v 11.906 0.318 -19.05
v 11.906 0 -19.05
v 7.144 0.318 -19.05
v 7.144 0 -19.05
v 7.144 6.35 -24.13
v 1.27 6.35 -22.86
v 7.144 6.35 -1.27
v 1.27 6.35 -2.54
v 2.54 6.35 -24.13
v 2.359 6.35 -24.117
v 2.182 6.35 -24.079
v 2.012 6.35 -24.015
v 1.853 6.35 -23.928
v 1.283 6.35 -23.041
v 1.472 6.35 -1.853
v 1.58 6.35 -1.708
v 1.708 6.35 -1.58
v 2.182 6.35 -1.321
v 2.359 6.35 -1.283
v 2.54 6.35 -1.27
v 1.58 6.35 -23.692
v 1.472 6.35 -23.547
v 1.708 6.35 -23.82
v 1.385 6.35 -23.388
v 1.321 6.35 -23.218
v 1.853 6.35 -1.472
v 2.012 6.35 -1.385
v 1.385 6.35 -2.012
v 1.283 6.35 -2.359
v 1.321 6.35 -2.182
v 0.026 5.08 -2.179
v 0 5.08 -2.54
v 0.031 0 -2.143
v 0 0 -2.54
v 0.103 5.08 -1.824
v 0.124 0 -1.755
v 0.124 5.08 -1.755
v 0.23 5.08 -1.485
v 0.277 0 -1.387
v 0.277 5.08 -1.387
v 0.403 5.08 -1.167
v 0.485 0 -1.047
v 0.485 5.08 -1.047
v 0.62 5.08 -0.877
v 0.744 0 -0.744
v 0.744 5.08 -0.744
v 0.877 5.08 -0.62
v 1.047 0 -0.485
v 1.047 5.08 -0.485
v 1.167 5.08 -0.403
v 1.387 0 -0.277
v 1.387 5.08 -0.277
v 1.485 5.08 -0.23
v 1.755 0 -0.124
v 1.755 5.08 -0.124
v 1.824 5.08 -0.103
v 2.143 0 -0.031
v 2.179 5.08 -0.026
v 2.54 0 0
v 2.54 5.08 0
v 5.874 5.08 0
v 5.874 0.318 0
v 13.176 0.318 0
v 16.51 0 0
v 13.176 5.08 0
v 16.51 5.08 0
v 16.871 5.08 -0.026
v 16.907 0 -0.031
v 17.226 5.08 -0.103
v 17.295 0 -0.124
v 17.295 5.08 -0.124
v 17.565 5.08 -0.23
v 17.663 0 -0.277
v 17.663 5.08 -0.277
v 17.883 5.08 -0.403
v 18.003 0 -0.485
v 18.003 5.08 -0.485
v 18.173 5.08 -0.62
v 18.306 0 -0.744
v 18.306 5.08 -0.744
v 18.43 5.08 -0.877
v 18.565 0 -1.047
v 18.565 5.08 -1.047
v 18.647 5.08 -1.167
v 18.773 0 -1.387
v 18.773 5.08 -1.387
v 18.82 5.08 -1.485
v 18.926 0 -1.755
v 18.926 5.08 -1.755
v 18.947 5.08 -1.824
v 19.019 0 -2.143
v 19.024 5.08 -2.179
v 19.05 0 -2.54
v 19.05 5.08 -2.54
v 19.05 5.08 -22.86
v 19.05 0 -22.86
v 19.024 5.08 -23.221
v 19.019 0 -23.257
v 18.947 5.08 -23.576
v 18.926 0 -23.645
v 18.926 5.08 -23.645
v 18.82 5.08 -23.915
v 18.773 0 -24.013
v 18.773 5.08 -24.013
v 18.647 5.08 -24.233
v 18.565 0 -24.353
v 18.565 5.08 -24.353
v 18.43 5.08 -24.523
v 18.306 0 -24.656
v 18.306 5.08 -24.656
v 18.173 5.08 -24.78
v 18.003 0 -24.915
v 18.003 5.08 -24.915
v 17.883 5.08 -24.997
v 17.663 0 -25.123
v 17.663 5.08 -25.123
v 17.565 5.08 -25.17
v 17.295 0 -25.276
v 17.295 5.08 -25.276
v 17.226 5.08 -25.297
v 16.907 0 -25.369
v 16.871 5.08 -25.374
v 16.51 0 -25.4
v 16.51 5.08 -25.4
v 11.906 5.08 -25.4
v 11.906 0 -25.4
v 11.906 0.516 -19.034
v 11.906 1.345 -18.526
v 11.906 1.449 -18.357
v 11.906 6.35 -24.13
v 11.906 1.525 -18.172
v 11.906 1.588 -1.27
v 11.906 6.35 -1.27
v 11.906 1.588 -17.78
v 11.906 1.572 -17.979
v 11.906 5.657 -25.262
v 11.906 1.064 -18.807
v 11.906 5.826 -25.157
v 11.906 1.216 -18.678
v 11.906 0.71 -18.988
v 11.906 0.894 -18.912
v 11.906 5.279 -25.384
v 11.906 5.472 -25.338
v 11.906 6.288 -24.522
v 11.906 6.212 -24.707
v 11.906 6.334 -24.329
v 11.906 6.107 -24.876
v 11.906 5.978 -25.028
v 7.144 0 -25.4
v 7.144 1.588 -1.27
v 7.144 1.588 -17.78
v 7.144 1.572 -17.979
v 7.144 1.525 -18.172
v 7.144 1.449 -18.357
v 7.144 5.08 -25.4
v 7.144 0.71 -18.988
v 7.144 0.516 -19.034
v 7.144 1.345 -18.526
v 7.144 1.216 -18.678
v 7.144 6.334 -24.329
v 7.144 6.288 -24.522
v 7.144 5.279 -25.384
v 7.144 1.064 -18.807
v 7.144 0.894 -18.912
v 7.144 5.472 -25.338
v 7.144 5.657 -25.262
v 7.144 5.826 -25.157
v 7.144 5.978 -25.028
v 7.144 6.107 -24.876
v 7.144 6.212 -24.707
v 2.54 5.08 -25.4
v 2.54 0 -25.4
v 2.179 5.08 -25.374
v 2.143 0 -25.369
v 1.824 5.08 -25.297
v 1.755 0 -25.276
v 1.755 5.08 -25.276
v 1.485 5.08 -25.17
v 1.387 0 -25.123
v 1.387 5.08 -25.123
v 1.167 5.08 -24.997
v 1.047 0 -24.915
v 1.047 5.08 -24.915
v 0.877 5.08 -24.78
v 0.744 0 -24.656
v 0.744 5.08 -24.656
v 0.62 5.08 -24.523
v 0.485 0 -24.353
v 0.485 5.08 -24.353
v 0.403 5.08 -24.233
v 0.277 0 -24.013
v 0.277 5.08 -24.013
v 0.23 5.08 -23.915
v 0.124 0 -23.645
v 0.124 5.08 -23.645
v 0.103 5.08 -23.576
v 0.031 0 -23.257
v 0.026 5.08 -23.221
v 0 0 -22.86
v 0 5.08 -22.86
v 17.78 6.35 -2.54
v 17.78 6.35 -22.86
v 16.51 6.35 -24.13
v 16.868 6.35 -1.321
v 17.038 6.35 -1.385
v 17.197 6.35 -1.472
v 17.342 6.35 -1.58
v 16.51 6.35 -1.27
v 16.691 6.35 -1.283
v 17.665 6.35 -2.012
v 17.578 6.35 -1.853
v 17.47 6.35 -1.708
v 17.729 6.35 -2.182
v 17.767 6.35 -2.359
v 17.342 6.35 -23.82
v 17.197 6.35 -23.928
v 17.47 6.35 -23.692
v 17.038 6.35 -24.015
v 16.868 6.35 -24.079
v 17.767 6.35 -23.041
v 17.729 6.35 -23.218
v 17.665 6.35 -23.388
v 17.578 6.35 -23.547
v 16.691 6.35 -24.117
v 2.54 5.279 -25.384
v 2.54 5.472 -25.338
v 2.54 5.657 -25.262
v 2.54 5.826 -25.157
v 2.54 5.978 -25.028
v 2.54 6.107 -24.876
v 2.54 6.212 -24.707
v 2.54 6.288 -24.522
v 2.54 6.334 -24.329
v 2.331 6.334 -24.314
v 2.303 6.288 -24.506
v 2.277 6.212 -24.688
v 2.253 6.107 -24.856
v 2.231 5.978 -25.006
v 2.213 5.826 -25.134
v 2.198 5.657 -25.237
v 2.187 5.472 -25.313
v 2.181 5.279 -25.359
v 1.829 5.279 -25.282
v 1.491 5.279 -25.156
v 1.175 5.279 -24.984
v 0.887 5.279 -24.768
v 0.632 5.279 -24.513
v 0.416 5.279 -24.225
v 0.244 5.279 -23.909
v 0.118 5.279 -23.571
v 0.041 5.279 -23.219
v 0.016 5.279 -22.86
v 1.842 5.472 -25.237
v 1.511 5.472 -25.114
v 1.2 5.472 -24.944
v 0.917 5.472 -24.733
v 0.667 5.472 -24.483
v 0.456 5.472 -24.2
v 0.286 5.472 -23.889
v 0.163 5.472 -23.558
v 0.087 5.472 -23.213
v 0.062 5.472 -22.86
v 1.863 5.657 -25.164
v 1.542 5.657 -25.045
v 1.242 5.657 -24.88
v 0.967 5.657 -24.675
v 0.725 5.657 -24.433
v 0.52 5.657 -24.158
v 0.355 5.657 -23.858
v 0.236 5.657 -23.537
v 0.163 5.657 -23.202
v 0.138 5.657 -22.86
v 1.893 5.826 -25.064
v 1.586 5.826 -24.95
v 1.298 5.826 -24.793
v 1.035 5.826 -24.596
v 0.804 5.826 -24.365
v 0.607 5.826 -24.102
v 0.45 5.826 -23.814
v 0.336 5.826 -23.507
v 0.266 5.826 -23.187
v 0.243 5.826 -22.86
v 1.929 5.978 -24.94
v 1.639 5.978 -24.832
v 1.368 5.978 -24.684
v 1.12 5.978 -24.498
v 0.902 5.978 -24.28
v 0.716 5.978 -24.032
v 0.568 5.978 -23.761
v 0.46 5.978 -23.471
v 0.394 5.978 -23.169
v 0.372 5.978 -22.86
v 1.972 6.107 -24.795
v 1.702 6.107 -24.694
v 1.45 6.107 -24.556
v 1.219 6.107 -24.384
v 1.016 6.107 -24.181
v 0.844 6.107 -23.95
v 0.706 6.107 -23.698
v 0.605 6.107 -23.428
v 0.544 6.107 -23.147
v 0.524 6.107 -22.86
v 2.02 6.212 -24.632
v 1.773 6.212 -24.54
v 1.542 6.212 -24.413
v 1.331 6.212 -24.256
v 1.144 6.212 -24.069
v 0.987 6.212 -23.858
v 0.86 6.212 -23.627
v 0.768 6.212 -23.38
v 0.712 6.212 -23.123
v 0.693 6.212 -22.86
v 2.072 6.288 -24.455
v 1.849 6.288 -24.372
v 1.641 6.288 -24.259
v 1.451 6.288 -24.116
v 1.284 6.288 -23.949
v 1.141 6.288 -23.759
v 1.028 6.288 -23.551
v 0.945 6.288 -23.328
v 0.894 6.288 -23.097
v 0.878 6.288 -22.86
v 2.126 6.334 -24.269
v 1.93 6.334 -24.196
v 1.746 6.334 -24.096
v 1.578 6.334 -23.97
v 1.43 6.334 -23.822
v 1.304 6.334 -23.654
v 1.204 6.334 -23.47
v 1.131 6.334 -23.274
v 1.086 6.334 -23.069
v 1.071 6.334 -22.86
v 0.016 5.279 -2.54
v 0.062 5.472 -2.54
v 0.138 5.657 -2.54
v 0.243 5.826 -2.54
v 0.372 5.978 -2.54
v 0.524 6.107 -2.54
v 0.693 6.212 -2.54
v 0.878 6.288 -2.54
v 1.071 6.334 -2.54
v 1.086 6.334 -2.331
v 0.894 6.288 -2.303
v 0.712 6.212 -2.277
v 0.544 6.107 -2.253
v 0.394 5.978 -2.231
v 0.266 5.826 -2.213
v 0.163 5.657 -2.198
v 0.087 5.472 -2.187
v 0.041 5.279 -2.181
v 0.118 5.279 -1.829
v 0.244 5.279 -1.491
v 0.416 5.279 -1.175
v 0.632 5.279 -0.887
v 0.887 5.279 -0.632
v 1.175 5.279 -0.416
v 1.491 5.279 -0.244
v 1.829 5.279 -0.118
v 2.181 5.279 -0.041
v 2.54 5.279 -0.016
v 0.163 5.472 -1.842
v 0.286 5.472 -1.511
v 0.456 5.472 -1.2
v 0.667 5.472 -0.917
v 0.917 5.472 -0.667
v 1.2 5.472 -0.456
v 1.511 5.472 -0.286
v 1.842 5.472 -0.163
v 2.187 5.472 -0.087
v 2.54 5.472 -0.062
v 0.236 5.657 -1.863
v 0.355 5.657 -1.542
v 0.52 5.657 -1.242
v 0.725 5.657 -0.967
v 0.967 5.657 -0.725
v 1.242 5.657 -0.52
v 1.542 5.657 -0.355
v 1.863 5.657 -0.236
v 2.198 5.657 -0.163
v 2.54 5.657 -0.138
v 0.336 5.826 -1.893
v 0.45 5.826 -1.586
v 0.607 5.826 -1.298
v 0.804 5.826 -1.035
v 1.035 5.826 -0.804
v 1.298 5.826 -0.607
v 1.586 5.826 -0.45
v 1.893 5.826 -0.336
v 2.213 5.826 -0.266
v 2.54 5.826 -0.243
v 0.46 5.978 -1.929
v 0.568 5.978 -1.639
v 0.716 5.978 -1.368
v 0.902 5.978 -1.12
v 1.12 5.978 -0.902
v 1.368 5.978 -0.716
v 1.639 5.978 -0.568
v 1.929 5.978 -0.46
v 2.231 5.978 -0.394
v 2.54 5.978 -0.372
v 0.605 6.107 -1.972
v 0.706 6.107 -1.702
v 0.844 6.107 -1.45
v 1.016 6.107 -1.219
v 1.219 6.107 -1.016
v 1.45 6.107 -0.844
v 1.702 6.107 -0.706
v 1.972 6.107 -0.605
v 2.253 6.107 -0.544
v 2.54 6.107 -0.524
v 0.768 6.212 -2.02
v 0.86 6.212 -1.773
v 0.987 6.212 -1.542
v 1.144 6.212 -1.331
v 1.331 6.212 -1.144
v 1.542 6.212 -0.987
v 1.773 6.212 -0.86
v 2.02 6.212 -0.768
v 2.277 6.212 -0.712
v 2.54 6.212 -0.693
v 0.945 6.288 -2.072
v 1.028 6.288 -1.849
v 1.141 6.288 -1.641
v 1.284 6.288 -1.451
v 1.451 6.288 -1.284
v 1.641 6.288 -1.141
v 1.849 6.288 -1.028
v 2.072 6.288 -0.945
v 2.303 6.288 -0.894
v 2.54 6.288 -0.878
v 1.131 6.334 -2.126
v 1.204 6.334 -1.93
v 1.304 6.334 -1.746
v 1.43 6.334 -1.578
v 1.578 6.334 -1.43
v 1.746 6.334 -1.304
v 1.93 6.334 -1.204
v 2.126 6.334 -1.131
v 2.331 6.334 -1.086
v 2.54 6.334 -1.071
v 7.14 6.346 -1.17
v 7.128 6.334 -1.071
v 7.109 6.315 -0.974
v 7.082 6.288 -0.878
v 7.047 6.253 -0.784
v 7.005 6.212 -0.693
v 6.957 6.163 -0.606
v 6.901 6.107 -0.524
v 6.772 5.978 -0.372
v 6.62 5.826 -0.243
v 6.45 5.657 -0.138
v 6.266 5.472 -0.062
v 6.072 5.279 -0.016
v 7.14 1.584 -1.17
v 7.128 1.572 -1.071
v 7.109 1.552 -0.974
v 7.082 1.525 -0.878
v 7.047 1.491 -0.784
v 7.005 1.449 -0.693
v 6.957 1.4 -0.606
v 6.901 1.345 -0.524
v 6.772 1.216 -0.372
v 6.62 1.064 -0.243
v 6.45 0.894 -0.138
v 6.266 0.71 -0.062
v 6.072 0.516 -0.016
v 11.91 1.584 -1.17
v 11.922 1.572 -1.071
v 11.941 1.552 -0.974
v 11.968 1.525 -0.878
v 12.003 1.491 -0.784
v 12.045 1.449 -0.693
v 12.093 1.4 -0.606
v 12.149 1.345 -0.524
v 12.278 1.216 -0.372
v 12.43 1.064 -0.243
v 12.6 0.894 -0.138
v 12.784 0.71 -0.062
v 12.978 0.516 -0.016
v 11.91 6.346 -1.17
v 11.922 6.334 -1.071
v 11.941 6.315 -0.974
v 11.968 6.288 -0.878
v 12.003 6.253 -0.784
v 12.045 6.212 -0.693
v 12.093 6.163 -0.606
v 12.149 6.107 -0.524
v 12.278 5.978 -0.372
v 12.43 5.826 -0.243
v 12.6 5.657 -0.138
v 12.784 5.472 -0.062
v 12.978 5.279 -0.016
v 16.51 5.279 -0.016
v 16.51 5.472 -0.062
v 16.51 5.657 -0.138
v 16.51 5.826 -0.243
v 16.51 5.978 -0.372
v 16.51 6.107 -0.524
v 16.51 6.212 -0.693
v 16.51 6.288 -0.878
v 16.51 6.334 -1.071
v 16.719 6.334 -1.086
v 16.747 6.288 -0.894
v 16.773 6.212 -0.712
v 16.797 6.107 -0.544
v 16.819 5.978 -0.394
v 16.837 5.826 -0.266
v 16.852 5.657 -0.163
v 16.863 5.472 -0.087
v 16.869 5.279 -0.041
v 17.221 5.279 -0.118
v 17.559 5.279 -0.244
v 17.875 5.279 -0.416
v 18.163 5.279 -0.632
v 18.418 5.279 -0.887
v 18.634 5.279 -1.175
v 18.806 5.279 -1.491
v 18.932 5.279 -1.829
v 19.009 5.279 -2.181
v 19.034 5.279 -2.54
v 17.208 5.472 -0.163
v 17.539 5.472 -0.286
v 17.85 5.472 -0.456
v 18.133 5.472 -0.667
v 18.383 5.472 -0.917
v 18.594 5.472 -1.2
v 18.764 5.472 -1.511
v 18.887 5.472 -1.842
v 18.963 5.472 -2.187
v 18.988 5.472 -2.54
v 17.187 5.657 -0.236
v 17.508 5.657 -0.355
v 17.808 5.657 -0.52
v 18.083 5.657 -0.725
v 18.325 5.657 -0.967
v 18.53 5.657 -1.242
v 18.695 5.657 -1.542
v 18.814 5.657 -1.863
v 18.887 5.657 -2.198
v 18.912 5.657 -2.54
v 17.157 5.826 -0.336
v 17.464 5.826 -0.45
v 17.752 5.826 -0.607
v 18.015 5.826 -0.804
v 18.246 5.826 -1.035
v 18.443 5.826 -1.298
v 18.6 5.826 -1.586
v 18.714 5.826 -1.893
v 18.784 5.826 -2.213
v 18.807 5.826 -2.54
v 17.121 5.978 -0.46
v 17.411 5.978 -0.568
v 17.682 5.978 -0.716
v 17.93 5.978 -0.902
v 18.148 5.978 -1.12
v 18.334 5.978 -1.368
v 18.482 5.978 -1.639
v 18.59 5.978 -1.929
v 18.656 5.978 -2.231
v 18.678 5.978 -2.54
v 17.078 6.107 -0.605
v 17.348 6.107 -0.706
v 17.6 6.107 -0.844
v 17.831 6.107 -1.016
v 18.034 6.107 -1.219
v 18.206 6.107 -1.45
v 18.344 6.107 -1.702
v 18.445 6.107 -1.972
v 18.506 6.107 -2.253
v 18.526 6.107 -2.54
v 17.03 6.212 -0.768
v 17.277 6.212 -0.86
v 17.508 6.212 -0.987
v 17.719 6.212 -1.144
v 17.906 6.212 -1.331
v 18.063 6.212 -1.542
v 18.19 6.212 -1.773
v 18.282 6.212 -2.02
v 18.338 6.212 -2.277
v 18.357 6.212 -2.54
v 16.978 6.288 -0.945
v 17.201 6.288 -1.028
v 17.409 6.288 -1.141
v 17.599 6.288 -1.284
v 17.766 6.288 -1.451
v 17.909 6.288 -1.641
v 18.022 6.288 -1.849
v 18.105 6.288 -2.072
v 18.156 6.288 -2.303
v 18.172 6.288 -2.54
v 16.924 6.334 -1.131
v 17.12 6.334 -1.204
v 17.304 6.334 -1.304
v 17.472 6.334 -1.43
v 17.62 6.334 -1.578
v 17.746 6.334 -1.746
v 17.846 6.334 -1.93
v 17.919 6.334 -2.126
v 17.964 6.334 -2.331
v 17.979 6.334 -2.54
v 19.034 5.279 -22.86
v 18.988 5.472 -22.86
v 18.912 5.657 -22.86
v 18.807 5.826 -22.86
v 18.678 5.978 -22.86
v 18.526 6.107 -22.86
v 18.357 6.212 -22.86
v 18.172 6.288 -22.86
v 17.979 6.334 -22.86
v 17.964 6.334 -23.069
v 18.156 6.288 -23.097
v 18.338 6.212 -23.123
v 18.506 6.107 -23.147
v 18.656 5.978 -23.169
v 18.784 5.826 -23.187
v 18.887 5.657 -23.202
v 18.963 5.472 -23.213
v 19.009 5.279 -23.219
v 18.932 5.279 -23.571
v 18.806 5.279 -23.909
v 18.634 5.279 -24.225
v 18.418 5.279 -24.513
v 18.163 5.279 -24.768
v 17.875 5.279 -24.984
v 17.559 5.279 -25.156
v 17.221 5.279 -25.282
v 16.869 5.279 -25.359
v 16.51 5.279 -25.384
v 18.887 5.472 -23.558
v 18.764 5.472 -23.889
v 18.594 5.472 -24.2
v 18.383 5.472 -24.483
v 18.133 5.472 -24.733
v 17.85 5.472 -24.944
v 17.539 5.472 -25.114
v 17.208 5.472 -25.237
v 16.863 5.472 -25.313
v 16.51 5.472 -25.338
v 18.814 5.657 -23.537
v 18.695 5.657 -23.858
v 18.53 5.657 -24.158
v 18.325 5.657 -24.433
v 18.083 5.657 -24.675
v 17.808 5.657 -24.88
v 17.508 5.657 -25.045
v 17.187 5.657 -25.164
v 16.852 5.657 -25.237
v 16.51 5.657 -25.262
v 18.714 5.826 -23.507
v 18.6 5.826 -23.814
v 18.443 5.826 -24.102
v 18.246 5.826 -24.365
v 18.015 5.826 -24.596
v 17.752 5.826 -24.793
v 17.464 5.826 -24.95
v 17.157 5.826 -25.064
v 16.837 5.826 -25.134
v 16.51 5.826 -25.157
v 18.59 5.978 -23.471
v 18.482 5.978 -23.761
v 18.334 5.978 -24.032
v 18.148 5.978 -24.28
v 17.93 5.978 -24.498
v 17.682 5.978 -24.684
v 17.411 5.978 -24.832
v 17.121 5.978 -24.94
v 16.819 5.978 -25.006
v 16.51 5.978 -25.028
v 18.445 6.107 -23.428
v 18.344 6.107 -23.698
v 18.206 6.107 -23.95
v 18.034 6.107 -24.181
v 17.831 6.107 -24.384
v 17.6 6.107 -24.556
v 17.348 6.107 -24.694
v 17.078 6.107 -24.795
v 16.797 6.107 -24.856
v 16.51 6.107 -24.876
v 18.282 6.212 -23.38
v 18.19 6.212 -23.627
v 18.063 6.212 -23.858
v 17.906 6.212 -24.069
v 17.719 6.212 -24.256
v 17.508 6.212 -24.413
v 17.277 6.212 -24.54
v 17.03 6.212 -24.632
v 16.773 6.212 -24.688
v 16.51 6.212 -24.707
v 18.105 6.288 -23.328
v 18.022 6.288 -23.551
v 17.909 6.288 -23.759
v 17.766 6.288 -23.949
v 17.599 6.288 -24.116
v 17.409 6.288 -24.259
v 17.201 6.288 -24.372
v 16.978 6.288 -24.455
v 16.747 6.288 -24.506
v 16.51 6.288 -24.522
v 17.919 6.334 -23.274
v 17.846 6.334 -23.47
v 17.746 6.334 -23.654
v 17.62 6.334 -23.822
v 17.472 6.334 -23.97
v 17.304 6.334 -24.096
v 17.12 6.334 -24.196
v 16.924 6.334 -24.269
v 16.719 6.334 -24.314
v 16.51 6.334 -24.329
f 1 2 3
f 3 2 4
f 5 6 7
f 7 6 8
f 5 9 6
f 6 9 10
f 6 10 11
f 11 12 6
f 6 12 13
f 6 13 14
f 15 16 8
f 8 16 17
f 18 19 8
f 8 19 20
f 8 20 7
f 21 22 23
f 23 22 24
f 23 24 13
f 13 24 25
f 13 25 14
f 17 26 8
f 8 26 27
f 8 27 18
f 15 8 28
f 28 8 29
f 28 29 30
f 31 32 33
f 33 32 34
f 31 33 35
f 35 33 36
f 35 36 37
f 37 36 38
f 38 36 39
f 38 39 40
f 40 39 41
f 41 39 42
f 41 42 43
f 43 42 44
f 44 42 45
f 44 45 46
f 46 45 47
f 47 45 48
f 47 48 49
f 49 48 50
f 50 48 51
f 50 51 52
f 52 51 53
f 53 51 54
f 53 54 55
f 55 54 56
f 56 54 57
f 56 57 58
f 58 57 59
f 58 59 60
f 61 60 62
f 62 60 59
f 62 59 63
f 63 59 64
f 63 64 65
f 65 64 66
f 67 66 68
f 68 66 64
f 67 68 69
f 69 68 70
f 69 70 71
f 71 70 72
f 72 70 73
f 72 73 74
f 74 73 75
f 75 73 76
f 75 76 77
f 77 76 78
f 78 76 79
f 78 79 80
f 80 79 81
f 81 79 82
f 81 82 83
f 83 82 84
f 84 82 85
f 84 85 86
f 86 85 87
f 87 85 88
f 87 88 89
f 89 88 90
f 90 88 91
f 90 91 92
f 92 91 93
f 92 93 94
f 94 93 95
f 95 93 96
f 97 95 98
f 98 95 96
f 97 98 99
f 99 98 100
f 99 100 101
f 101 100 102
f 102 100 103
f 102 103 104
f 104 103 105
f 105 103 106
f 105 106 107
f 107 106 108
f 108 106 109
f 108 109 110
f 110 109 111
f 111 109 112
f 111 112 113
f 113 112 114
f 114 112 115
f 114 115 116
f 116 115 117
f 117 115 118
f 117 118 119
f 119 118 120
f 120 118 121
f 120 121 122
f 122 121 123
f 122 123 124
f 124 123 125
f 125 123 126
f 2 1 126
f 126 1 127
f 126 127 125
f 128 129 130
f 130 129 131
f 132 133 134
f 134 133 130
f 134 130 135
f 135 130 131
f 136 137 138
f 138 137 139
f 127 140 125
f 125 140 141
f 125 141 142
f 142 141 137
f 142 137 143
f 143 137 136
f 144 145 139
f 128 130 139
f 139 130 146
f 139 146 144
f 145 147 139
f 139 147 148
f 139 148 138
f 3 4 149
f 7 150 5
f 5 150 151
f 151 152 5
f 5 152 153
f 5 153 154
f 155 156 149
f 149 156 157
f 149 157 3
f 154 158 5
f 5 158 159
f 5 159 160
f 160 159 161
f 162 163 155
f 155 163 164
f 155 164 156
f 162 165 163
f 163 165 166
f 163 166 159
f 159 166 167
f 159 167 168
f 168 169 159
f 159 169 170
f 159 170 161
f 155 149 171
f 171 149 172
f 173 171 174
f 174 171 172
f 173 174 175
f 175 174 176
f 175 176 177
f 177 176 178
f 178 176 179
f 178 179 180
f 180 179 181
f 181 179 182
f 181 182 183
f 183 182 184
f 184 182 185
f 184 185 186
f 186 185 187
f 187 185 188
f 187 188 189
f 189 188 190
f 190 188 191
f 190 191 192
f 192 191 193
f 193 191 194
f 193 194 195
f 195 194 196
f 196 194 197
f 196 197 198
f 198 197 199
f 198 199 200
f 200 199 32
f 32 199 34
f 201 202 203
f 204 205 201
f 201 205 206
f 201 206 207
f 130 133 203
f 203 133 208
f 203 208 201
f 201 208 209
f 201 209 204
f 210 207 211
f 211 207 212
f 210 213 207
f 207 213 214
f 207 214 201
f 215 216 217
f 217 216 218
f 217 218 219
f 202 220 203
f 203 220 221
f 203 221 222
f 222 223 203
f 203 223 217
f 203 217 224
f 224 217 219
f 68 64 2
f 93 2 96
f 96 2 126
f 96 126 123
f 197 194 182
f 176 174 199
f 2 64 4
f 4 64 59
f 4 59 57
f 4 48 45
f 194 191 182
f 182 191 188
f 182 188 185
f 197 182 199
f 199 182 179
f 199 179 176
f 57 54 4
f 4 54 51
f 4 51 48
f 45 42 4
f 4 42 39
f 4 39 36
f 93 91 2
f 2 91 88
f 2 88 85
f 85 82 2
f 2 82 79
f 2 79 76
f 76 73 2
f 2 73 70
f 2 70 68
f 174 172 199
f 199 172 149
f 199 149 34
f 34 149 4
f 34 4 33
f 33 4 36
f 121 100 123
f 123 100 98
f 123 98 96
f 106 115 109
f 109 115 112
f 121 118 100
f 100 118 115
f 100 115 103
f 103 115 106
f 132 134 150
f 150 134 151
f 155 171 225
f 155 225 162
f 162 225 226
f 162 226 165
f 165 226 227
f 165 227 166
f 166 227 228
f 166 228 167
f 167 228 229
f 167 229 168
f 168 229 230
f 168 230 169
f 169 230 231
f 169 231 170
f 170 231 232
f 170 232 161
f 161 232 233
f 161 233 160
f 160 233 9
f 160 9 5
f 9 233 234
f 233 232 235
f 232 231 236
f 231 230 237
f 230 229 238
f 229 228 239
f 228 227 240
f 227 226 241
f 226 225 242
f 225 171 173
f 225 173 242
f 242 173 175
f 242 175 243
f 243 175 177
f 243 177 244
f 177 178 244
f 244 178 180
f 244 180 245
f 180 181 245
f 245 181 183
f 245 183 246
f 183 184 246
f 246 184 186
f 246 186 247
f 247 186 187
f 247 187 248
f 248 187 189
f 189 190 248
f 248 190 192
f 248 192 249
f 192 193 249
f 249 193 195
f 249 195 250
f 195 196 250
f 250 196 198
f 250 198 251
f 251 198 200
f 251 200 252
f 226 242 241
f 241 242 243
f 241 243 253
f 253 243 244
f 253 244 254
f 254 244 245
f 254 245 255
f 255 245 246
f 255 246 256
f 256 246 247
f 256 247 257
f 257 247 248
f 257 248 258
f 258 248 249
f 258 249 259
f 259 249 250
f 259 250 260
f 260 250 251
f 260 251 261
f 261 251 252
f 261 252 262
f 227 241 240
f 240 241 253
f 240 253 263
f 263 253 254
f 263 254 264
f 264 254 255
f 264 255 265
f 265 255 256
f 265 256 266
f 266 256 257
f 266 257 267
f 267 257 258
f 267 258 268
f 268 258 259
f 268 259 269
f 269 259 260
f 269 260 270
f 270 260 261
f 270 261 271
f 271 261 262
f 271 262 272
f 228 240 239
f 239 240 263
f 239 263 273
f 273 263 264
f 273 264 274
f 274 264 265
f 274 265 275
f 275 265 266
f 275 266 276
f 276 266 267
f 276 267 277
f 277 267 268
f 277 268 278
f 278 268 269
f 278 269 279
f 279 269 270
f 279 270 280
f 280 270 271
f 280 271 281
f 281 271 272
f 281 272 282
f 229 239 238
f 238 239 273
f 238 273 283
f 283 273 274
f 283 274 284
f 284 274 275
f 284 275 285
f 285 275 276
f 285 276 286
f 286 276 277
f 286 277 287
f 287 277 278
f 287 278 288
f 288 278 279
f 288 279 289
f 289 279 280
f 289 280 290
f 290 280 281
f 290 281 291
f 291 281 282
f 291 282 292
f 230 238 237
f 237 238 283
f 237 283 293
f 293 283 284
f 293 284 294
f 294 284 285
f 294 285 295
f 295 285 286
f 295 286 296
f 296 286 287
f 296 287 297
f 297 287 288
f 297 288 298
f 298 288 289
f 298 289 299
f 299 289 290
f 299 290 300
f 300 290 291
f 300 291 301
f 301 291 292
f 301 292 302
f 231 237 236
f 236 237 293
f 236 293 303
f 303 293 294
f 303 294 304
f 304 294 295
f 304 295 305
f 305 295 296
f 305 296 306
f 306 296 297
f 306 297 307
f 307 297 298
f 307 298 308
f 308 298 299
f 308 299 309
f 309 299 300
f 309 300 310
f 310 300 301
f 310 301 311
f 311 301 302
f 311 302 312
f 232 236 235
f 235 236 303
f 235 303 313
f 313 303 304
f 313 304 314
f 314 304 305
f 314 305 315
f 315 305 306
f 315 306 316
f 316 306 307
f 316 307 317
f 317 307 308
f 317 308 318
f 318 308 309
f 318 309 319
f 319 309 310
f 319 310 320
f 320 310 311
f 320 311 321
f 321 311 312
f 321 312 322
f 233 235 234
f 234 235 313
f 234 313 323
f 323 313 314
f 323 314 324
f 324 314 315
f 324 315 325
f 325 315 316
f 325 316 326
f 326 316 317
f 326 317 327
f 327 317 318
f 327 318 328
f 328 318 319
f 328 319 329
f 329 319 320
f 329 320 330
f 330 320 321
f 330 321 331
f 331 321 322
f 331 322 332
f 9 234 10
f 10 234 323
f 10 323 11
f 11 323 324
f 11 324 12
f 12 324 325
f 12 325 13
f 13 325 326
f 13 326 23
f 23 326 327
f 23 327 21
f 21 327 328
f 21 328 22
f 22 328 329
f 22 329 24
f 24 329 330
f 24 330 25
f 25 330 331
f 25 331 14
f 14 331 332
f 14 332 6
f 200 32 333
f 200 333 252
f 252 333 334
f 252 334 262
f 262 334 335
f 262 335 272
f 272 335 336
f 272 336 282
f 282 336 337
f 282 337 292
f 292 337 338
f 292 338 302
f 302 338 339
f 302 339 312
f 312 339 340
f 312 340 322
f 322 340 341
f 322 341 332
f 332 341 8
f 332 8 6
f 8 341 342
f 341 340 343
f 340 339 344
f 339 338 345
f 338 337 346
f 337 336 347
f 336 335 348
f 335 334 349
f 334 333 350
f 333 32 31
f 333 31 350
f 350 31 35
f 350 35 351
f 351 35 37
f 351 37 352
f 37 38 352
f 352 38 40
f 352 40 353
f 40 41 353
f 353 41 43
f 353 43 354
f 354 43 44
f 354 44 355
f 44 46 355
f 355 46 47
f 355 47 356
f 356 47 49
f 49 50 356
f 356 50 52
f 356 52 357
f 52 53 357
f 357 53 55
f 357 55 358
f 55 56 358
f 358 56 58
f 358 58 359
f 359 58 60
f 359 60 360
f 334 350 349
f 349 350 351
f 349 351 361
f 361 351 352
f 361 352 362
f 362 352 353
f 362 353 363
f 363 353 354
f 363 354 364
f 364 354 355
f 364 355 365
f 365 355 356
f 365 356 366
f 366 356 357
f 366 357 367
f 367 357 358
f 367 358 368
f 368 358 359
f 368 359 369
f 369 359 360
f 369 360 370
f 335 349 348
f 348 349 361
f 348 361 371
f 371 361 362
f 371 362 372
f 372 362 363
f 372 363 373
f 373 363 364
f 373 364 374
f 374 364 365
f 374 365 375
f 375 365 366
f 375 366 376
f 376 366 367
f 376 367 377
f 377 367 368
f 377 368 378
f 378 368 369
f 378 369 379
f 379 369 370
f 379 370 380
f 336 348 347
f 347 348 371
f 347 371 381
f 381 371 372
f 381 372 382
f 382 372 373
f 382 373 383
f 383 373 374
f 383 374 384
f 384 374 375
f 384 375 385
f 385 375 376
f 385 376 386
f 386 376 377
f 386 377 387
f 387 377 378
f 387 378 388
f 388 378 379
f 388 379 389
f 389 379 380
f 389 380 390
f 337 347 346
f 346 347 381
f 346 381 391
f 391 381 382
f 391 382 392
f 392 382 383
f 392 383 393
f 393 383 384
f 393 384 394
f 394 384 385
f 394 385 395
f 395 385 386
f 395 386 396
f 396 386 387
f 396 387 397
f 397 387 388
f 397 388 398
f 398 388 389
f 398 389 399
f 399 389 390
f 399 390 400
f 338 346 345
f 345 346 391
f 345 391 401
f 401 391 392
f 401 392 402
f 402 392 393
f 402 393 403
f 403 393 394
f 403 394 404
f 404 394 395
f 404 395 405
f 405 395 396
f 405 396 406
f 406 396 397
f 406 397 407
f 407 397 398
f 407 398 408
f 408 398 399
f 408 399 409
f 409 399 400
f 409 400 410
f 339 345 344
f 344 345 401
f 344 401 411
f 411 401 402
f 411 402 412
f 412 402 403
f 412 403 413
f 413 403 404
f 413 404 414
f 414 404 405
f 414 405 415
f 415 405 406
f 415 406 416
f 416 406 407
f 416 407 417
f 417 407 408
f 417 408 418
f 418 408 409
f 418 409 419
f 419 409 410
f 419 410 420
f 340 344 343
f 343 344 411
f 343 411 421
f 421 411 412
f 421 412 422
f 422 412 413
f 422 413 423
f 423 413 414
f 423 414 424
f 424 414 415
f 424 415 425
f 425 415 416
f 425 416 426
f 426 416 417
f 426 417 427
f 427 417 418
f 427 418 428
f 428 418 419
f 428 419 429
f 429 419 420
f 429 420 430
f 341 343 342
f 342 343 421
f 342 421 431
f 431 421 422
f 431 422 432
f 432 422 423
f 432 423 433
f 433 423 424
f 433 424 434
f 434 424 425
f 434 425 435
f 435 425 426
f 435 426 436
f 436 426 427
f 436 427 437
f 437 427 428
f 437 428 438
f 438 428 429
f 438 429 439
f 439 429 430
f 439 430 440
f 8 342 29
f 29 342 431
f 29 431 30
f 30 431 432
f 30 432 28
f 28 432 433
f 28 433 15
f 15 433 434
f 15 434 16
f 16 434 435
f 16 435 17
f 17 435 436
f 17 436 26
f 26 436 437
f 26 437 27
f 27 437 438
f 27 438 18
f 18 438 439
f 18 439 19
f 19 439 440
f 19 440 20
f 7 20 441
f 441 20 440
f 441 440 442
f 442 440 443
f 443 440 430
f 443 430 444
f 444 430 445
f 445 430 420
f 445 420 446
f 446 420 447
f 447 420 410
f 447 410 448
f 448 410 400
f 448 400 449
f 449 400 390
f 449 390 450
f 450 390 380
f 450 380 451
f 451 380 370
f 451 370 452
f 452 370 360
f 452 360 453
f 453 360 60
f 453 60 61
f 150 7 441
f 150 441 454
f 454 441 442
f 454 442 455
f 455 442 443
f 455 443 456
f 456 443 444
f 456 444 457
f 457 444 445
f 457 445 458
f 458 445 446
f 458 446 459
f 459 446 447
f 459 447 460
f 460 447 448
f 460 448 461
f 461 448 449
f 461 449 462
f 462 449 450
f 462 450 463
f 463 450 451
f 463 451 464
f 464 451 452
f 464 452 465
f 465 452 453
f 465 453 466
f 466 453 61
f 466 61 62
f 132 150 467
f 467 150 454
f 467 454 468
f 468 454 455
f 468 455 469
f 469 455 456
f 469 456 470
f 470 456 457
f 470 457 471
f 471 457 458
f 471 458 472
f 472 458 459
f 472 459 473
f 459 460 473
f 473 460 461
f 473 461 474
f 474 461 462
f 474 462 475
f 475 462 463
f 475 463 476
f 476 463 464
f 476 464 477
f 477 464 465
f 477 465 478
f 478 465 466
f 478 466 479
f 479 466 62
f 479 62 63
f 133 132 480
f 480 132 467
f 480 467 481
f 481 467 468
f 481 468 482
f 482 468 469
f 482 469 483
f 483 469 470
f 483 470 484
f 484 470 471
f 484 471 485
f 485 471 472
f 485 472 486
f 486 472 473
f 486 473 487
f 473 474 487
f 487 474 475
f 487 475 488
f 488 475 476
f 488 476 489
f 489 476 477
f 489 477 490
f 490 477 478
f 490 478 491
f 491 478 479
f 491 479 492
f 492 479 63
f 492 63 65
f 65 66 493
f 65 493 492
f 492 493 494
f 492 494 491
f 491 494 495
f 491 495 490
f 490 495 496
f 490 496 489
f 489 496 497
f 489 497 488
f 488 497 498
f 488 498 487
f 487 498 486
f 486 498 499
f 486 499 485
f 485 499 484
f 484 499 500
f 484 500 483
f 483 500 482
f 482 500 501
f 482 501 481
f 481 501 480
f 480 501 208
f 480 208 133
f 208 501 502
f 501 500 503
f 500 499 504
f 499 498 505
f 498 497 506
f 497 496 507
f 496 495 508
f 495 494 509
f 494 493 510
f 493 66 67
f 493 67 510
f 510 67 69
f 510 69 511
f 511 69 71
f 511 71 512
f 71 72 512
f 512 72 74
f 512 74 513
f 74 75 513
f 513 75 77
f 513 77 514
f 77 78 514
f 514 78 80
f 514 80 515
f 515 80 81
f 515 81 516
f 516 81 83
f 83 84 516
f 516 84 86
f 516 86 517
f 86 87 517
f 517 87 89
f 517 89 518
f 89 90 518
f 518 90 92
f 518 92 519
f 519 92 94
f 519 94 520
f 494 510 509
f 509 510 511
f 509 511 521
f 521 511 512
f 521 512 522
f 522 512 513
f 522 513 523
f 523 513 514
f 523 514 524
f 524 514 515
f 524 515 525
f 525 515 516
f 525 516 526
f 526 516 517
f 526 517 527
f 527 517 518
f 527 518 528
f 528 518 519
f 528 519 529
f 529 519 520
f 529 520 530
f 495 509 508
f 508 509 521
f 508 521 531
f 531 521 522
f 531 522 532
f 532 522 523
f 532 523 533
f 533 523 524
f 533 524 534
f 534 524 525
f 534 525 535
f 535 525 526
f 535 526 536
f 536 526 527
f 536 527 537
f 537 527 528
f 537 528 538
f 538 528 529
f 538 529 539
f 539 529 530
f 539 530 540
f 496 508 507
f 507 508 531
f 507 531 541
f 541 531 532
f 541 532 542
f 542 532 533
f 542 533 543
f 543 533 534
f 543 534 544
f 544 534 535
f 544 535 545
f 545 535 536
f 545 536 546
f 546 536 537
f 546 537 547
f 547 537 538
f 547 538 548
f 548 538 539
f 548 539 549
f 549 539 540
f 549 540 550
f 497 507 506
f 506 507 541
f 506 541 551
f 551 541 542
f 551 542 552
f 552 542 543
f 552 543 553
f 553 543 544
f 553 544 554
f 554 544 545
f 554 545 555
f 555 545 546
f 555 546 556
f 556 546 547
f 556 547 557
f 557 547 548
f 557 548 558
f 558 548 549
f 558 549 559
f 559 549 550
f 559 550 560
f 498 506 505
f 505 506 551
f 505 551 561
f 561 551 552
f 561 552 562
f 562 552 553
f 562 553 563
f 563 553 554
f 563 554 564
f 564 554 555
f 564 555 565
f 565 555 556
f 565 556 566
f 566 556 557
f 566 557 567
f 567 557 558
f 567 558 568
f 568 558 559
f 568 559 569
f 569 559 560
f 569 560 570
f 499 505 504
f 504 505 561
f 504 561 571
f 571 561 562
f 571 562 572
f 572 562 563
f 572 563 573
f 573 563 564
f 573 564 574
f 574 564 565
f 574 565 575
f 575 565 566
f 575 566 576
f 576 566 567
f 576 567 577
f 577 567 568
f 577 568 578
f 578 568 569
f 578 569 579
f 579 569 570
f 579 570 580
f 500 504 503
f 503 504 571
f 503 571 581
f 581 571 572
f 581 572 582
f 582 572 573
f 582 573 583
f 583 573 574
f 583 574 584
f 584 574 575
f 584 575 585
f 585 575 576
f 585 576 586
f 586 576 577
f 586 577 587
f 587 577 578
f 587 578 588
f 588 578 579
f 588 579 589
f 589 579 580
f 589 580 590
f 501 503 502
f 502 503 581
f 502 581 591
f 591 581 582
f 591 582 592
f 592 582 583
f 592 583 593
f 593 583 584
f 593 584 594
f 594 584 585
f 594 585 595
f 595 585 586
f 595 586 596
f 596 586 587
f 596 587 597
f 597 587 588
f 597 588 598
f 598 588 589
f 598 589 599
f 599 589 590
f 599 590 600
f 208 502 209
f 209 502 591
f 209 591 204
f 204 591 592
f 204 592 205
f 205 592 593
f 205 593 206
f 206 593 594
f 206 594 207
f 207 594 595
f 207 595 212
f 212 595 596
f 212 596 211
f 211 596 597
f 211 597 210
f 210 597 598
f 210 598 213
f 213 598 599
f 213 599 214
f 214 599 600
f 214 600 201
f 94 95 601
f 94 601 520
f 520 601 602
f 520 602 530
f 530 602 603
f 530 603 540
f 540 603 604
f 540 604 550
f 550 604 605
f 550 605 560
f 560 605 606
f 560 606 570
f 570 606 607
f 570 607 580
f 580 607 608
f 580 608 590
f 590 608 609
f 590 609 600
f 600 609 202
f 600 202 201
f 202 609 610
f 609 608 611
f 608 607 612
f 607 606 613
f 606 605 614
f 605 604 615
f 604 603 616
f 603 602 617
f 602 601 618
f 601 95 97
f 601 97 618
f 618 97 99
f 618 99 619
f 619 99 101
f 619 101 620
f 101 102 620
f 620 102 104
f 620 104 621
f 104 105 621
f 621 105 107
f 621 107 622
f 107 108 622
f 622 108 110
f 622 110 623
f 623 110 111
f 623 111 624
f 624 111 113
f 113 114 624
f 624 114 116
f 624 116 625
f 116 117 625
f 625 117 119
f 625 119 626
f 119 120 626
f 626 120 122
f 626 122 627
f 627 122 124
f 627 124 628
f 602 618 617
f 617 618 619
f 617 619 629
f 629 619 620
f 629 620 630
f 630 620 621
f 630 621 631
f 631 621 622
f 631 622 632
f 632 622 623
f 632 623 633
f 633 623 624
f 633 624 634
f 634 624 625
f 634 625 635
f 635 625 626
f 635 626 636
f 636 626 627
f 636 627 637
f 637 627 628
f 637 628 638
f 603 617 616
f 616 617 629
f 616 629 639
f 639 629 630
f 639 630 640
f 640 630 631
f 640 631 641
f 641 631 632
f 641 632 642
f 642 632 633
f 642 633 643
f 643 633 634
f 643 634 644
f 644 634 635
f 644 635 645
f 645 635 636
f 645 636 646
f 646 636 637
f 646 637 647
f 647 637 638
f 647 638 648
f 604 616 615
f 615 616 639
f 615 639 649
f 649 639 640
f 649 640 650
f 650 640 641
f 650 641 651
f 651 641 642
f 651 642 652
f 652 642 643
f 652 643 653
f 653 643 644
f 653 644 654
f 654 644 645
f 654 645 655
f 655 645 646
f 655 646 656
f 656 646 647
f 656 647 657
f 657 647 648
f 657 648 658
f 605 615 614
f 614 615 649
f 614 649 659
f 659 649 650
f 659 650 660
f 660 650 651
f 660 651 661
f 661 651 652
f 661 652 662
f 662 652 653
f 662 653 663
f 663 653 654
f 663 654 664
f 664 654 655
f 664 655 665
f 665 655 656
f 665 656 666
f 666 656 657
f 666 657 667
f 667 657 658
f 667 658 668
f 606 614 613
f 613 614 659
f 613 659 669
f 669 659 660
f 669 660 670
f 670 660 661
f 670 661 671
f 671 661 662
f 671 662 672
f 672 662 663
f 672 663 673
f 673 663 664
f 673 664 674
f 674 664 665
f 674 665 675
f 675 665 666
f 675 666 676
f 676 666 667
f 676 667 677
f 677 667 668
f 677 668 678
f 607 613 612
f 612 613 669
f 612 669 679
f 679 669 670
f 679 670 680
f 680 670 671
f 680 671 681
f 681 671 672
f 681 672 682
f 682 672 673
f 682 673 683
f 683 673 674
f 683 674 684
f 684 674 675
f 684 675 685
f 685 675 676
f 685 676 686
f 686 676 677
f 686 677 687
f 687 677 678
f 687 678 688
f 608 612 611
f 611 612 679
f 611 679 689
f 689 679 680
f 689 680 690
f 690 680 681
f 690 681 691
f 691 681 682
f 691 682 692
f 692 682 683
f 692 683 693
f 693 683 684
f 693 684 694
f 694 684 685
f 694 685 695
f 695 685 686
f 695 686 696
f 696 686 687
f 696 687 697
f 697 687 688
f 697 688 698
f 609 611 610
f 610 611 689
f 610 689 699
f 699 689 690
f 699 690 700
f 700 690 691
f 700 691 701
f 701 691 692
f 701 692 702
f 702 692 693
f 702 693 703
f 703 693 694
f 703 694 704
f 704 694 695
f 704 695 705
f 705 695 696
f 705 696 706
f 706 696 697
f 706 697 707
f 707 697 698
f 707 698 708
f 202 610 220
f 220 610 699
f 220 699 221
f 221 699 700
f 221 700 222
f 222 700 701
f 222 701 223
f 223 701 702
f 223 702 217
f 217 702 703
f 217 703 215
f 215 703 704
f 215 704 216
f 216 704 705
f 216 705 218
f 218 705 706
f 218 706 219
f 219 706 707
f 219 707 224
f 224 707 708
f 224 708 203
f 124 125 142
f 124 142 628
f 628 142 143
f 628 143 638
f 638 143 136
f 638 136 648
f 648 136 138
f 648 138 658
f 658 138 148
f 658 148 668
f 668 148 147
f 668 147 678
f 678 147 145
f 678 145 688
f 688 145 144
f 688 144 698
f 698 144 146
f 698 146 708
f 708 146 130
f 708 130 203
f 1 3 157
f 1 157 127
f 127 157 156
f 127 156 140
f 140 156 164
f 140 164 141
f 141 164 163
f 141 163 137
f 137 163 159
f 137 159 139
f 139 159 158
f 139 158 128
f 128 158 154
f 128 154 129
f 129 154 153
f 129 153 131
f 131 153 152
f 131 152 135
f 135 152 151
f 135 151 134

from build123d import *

# Parameters (mm, degrees)
BOSS_EXTRUDE1_DEPTH = 6.35
SKETCH2_W           = 4.7625
SKETCH2_H           = 19.05
CUT_EXTRUDE1_DEPTH  = 4.7625
FILLET1_R           = 1.27


with BuildPart() as part:
    # Sketch1 → Boss-Extrude1 (new body)
    with BuildSketch(Plane(origin=(0, 0, 0), x_dir=(1, 0, 0), z_dir=(0, 1, 0))):
        with BuildLine():
            Line((11.90625, 25.4), (16.51, 25.4))
            ThreePointArc((16.51, 25.4), (18.306051224, 24.656051224), (19.05, 22.86))
            Line((19.05, 22.86), (19.05, 2.54))
            ThreePointArc((19.05, 2.54), (18.306051224, 0.743948776), (16.51, 0))
            Line((16.51, 0), (2.54, 0))
            ThreePointArc((2.54, 0), (0.743948776, 0.743948776), (0, 2.54))
            Line((0, 2.54), (0, 22.86))
            ThreePointArc((0, 22.86), (0.743948776, 24.656051224), (2.54, 25.4))
            Line((2.54, 25.4), (7.14375, 25.4))
            Line((7.14375, 25.4), (7.14375, 19.05))
            Line((7.14375, 19.05), (11.90625, 19.05))
            Line((11.90625, 19.05), (11.90625, 25.4))
        make_face()
    extrude(amount=BOSS_EXTRUDE1_DEPTH)

    # Sketch2 → Cut-Extrude1 (cut)
    with BuildSketch(Plane(origin=(0, 6.35, 0), x_dir=(1, 0, 0), z_dir=(0, 1, 0))):
        with Locations((9.525, 9.525)):
            Rectangle(SKETCH2_W, SKETCH2_H)
    extrude(amount=-CUT_EXTRUDE1_DEPTH, mode=Mode.SUBTRACT)

    # Fillet1
    fillet1_edges = [part.edges().sort_by_distance(p)[0] for p in [
        (0.743948776, 6.35, -24.656051224),
        (4.841875, 6.35, -25.4),
        (14.208125, 6.35, -25.4),
        (14.208125, 6.35, 0),
        (18.306051224, 6.35, -24.656051224),
        (7.14375, 3.96875, 0),
        (9.525, 1.5875, -19.05),
        (9.525, 1.5875, 0),
        (11.90625, 3.96875, 0),
        (19.05, 6.35, -12.7),
        (18.306051224, 6.35, -0.743948776),
        (4.841875, 6.35, 0),
        (0.743948776, 6.35, -0.743948776),
        (0, 6.35, -12.7),
    ]]
    fillet(fillet1_edges, radius=FILLET1_R)


solid = part.part
